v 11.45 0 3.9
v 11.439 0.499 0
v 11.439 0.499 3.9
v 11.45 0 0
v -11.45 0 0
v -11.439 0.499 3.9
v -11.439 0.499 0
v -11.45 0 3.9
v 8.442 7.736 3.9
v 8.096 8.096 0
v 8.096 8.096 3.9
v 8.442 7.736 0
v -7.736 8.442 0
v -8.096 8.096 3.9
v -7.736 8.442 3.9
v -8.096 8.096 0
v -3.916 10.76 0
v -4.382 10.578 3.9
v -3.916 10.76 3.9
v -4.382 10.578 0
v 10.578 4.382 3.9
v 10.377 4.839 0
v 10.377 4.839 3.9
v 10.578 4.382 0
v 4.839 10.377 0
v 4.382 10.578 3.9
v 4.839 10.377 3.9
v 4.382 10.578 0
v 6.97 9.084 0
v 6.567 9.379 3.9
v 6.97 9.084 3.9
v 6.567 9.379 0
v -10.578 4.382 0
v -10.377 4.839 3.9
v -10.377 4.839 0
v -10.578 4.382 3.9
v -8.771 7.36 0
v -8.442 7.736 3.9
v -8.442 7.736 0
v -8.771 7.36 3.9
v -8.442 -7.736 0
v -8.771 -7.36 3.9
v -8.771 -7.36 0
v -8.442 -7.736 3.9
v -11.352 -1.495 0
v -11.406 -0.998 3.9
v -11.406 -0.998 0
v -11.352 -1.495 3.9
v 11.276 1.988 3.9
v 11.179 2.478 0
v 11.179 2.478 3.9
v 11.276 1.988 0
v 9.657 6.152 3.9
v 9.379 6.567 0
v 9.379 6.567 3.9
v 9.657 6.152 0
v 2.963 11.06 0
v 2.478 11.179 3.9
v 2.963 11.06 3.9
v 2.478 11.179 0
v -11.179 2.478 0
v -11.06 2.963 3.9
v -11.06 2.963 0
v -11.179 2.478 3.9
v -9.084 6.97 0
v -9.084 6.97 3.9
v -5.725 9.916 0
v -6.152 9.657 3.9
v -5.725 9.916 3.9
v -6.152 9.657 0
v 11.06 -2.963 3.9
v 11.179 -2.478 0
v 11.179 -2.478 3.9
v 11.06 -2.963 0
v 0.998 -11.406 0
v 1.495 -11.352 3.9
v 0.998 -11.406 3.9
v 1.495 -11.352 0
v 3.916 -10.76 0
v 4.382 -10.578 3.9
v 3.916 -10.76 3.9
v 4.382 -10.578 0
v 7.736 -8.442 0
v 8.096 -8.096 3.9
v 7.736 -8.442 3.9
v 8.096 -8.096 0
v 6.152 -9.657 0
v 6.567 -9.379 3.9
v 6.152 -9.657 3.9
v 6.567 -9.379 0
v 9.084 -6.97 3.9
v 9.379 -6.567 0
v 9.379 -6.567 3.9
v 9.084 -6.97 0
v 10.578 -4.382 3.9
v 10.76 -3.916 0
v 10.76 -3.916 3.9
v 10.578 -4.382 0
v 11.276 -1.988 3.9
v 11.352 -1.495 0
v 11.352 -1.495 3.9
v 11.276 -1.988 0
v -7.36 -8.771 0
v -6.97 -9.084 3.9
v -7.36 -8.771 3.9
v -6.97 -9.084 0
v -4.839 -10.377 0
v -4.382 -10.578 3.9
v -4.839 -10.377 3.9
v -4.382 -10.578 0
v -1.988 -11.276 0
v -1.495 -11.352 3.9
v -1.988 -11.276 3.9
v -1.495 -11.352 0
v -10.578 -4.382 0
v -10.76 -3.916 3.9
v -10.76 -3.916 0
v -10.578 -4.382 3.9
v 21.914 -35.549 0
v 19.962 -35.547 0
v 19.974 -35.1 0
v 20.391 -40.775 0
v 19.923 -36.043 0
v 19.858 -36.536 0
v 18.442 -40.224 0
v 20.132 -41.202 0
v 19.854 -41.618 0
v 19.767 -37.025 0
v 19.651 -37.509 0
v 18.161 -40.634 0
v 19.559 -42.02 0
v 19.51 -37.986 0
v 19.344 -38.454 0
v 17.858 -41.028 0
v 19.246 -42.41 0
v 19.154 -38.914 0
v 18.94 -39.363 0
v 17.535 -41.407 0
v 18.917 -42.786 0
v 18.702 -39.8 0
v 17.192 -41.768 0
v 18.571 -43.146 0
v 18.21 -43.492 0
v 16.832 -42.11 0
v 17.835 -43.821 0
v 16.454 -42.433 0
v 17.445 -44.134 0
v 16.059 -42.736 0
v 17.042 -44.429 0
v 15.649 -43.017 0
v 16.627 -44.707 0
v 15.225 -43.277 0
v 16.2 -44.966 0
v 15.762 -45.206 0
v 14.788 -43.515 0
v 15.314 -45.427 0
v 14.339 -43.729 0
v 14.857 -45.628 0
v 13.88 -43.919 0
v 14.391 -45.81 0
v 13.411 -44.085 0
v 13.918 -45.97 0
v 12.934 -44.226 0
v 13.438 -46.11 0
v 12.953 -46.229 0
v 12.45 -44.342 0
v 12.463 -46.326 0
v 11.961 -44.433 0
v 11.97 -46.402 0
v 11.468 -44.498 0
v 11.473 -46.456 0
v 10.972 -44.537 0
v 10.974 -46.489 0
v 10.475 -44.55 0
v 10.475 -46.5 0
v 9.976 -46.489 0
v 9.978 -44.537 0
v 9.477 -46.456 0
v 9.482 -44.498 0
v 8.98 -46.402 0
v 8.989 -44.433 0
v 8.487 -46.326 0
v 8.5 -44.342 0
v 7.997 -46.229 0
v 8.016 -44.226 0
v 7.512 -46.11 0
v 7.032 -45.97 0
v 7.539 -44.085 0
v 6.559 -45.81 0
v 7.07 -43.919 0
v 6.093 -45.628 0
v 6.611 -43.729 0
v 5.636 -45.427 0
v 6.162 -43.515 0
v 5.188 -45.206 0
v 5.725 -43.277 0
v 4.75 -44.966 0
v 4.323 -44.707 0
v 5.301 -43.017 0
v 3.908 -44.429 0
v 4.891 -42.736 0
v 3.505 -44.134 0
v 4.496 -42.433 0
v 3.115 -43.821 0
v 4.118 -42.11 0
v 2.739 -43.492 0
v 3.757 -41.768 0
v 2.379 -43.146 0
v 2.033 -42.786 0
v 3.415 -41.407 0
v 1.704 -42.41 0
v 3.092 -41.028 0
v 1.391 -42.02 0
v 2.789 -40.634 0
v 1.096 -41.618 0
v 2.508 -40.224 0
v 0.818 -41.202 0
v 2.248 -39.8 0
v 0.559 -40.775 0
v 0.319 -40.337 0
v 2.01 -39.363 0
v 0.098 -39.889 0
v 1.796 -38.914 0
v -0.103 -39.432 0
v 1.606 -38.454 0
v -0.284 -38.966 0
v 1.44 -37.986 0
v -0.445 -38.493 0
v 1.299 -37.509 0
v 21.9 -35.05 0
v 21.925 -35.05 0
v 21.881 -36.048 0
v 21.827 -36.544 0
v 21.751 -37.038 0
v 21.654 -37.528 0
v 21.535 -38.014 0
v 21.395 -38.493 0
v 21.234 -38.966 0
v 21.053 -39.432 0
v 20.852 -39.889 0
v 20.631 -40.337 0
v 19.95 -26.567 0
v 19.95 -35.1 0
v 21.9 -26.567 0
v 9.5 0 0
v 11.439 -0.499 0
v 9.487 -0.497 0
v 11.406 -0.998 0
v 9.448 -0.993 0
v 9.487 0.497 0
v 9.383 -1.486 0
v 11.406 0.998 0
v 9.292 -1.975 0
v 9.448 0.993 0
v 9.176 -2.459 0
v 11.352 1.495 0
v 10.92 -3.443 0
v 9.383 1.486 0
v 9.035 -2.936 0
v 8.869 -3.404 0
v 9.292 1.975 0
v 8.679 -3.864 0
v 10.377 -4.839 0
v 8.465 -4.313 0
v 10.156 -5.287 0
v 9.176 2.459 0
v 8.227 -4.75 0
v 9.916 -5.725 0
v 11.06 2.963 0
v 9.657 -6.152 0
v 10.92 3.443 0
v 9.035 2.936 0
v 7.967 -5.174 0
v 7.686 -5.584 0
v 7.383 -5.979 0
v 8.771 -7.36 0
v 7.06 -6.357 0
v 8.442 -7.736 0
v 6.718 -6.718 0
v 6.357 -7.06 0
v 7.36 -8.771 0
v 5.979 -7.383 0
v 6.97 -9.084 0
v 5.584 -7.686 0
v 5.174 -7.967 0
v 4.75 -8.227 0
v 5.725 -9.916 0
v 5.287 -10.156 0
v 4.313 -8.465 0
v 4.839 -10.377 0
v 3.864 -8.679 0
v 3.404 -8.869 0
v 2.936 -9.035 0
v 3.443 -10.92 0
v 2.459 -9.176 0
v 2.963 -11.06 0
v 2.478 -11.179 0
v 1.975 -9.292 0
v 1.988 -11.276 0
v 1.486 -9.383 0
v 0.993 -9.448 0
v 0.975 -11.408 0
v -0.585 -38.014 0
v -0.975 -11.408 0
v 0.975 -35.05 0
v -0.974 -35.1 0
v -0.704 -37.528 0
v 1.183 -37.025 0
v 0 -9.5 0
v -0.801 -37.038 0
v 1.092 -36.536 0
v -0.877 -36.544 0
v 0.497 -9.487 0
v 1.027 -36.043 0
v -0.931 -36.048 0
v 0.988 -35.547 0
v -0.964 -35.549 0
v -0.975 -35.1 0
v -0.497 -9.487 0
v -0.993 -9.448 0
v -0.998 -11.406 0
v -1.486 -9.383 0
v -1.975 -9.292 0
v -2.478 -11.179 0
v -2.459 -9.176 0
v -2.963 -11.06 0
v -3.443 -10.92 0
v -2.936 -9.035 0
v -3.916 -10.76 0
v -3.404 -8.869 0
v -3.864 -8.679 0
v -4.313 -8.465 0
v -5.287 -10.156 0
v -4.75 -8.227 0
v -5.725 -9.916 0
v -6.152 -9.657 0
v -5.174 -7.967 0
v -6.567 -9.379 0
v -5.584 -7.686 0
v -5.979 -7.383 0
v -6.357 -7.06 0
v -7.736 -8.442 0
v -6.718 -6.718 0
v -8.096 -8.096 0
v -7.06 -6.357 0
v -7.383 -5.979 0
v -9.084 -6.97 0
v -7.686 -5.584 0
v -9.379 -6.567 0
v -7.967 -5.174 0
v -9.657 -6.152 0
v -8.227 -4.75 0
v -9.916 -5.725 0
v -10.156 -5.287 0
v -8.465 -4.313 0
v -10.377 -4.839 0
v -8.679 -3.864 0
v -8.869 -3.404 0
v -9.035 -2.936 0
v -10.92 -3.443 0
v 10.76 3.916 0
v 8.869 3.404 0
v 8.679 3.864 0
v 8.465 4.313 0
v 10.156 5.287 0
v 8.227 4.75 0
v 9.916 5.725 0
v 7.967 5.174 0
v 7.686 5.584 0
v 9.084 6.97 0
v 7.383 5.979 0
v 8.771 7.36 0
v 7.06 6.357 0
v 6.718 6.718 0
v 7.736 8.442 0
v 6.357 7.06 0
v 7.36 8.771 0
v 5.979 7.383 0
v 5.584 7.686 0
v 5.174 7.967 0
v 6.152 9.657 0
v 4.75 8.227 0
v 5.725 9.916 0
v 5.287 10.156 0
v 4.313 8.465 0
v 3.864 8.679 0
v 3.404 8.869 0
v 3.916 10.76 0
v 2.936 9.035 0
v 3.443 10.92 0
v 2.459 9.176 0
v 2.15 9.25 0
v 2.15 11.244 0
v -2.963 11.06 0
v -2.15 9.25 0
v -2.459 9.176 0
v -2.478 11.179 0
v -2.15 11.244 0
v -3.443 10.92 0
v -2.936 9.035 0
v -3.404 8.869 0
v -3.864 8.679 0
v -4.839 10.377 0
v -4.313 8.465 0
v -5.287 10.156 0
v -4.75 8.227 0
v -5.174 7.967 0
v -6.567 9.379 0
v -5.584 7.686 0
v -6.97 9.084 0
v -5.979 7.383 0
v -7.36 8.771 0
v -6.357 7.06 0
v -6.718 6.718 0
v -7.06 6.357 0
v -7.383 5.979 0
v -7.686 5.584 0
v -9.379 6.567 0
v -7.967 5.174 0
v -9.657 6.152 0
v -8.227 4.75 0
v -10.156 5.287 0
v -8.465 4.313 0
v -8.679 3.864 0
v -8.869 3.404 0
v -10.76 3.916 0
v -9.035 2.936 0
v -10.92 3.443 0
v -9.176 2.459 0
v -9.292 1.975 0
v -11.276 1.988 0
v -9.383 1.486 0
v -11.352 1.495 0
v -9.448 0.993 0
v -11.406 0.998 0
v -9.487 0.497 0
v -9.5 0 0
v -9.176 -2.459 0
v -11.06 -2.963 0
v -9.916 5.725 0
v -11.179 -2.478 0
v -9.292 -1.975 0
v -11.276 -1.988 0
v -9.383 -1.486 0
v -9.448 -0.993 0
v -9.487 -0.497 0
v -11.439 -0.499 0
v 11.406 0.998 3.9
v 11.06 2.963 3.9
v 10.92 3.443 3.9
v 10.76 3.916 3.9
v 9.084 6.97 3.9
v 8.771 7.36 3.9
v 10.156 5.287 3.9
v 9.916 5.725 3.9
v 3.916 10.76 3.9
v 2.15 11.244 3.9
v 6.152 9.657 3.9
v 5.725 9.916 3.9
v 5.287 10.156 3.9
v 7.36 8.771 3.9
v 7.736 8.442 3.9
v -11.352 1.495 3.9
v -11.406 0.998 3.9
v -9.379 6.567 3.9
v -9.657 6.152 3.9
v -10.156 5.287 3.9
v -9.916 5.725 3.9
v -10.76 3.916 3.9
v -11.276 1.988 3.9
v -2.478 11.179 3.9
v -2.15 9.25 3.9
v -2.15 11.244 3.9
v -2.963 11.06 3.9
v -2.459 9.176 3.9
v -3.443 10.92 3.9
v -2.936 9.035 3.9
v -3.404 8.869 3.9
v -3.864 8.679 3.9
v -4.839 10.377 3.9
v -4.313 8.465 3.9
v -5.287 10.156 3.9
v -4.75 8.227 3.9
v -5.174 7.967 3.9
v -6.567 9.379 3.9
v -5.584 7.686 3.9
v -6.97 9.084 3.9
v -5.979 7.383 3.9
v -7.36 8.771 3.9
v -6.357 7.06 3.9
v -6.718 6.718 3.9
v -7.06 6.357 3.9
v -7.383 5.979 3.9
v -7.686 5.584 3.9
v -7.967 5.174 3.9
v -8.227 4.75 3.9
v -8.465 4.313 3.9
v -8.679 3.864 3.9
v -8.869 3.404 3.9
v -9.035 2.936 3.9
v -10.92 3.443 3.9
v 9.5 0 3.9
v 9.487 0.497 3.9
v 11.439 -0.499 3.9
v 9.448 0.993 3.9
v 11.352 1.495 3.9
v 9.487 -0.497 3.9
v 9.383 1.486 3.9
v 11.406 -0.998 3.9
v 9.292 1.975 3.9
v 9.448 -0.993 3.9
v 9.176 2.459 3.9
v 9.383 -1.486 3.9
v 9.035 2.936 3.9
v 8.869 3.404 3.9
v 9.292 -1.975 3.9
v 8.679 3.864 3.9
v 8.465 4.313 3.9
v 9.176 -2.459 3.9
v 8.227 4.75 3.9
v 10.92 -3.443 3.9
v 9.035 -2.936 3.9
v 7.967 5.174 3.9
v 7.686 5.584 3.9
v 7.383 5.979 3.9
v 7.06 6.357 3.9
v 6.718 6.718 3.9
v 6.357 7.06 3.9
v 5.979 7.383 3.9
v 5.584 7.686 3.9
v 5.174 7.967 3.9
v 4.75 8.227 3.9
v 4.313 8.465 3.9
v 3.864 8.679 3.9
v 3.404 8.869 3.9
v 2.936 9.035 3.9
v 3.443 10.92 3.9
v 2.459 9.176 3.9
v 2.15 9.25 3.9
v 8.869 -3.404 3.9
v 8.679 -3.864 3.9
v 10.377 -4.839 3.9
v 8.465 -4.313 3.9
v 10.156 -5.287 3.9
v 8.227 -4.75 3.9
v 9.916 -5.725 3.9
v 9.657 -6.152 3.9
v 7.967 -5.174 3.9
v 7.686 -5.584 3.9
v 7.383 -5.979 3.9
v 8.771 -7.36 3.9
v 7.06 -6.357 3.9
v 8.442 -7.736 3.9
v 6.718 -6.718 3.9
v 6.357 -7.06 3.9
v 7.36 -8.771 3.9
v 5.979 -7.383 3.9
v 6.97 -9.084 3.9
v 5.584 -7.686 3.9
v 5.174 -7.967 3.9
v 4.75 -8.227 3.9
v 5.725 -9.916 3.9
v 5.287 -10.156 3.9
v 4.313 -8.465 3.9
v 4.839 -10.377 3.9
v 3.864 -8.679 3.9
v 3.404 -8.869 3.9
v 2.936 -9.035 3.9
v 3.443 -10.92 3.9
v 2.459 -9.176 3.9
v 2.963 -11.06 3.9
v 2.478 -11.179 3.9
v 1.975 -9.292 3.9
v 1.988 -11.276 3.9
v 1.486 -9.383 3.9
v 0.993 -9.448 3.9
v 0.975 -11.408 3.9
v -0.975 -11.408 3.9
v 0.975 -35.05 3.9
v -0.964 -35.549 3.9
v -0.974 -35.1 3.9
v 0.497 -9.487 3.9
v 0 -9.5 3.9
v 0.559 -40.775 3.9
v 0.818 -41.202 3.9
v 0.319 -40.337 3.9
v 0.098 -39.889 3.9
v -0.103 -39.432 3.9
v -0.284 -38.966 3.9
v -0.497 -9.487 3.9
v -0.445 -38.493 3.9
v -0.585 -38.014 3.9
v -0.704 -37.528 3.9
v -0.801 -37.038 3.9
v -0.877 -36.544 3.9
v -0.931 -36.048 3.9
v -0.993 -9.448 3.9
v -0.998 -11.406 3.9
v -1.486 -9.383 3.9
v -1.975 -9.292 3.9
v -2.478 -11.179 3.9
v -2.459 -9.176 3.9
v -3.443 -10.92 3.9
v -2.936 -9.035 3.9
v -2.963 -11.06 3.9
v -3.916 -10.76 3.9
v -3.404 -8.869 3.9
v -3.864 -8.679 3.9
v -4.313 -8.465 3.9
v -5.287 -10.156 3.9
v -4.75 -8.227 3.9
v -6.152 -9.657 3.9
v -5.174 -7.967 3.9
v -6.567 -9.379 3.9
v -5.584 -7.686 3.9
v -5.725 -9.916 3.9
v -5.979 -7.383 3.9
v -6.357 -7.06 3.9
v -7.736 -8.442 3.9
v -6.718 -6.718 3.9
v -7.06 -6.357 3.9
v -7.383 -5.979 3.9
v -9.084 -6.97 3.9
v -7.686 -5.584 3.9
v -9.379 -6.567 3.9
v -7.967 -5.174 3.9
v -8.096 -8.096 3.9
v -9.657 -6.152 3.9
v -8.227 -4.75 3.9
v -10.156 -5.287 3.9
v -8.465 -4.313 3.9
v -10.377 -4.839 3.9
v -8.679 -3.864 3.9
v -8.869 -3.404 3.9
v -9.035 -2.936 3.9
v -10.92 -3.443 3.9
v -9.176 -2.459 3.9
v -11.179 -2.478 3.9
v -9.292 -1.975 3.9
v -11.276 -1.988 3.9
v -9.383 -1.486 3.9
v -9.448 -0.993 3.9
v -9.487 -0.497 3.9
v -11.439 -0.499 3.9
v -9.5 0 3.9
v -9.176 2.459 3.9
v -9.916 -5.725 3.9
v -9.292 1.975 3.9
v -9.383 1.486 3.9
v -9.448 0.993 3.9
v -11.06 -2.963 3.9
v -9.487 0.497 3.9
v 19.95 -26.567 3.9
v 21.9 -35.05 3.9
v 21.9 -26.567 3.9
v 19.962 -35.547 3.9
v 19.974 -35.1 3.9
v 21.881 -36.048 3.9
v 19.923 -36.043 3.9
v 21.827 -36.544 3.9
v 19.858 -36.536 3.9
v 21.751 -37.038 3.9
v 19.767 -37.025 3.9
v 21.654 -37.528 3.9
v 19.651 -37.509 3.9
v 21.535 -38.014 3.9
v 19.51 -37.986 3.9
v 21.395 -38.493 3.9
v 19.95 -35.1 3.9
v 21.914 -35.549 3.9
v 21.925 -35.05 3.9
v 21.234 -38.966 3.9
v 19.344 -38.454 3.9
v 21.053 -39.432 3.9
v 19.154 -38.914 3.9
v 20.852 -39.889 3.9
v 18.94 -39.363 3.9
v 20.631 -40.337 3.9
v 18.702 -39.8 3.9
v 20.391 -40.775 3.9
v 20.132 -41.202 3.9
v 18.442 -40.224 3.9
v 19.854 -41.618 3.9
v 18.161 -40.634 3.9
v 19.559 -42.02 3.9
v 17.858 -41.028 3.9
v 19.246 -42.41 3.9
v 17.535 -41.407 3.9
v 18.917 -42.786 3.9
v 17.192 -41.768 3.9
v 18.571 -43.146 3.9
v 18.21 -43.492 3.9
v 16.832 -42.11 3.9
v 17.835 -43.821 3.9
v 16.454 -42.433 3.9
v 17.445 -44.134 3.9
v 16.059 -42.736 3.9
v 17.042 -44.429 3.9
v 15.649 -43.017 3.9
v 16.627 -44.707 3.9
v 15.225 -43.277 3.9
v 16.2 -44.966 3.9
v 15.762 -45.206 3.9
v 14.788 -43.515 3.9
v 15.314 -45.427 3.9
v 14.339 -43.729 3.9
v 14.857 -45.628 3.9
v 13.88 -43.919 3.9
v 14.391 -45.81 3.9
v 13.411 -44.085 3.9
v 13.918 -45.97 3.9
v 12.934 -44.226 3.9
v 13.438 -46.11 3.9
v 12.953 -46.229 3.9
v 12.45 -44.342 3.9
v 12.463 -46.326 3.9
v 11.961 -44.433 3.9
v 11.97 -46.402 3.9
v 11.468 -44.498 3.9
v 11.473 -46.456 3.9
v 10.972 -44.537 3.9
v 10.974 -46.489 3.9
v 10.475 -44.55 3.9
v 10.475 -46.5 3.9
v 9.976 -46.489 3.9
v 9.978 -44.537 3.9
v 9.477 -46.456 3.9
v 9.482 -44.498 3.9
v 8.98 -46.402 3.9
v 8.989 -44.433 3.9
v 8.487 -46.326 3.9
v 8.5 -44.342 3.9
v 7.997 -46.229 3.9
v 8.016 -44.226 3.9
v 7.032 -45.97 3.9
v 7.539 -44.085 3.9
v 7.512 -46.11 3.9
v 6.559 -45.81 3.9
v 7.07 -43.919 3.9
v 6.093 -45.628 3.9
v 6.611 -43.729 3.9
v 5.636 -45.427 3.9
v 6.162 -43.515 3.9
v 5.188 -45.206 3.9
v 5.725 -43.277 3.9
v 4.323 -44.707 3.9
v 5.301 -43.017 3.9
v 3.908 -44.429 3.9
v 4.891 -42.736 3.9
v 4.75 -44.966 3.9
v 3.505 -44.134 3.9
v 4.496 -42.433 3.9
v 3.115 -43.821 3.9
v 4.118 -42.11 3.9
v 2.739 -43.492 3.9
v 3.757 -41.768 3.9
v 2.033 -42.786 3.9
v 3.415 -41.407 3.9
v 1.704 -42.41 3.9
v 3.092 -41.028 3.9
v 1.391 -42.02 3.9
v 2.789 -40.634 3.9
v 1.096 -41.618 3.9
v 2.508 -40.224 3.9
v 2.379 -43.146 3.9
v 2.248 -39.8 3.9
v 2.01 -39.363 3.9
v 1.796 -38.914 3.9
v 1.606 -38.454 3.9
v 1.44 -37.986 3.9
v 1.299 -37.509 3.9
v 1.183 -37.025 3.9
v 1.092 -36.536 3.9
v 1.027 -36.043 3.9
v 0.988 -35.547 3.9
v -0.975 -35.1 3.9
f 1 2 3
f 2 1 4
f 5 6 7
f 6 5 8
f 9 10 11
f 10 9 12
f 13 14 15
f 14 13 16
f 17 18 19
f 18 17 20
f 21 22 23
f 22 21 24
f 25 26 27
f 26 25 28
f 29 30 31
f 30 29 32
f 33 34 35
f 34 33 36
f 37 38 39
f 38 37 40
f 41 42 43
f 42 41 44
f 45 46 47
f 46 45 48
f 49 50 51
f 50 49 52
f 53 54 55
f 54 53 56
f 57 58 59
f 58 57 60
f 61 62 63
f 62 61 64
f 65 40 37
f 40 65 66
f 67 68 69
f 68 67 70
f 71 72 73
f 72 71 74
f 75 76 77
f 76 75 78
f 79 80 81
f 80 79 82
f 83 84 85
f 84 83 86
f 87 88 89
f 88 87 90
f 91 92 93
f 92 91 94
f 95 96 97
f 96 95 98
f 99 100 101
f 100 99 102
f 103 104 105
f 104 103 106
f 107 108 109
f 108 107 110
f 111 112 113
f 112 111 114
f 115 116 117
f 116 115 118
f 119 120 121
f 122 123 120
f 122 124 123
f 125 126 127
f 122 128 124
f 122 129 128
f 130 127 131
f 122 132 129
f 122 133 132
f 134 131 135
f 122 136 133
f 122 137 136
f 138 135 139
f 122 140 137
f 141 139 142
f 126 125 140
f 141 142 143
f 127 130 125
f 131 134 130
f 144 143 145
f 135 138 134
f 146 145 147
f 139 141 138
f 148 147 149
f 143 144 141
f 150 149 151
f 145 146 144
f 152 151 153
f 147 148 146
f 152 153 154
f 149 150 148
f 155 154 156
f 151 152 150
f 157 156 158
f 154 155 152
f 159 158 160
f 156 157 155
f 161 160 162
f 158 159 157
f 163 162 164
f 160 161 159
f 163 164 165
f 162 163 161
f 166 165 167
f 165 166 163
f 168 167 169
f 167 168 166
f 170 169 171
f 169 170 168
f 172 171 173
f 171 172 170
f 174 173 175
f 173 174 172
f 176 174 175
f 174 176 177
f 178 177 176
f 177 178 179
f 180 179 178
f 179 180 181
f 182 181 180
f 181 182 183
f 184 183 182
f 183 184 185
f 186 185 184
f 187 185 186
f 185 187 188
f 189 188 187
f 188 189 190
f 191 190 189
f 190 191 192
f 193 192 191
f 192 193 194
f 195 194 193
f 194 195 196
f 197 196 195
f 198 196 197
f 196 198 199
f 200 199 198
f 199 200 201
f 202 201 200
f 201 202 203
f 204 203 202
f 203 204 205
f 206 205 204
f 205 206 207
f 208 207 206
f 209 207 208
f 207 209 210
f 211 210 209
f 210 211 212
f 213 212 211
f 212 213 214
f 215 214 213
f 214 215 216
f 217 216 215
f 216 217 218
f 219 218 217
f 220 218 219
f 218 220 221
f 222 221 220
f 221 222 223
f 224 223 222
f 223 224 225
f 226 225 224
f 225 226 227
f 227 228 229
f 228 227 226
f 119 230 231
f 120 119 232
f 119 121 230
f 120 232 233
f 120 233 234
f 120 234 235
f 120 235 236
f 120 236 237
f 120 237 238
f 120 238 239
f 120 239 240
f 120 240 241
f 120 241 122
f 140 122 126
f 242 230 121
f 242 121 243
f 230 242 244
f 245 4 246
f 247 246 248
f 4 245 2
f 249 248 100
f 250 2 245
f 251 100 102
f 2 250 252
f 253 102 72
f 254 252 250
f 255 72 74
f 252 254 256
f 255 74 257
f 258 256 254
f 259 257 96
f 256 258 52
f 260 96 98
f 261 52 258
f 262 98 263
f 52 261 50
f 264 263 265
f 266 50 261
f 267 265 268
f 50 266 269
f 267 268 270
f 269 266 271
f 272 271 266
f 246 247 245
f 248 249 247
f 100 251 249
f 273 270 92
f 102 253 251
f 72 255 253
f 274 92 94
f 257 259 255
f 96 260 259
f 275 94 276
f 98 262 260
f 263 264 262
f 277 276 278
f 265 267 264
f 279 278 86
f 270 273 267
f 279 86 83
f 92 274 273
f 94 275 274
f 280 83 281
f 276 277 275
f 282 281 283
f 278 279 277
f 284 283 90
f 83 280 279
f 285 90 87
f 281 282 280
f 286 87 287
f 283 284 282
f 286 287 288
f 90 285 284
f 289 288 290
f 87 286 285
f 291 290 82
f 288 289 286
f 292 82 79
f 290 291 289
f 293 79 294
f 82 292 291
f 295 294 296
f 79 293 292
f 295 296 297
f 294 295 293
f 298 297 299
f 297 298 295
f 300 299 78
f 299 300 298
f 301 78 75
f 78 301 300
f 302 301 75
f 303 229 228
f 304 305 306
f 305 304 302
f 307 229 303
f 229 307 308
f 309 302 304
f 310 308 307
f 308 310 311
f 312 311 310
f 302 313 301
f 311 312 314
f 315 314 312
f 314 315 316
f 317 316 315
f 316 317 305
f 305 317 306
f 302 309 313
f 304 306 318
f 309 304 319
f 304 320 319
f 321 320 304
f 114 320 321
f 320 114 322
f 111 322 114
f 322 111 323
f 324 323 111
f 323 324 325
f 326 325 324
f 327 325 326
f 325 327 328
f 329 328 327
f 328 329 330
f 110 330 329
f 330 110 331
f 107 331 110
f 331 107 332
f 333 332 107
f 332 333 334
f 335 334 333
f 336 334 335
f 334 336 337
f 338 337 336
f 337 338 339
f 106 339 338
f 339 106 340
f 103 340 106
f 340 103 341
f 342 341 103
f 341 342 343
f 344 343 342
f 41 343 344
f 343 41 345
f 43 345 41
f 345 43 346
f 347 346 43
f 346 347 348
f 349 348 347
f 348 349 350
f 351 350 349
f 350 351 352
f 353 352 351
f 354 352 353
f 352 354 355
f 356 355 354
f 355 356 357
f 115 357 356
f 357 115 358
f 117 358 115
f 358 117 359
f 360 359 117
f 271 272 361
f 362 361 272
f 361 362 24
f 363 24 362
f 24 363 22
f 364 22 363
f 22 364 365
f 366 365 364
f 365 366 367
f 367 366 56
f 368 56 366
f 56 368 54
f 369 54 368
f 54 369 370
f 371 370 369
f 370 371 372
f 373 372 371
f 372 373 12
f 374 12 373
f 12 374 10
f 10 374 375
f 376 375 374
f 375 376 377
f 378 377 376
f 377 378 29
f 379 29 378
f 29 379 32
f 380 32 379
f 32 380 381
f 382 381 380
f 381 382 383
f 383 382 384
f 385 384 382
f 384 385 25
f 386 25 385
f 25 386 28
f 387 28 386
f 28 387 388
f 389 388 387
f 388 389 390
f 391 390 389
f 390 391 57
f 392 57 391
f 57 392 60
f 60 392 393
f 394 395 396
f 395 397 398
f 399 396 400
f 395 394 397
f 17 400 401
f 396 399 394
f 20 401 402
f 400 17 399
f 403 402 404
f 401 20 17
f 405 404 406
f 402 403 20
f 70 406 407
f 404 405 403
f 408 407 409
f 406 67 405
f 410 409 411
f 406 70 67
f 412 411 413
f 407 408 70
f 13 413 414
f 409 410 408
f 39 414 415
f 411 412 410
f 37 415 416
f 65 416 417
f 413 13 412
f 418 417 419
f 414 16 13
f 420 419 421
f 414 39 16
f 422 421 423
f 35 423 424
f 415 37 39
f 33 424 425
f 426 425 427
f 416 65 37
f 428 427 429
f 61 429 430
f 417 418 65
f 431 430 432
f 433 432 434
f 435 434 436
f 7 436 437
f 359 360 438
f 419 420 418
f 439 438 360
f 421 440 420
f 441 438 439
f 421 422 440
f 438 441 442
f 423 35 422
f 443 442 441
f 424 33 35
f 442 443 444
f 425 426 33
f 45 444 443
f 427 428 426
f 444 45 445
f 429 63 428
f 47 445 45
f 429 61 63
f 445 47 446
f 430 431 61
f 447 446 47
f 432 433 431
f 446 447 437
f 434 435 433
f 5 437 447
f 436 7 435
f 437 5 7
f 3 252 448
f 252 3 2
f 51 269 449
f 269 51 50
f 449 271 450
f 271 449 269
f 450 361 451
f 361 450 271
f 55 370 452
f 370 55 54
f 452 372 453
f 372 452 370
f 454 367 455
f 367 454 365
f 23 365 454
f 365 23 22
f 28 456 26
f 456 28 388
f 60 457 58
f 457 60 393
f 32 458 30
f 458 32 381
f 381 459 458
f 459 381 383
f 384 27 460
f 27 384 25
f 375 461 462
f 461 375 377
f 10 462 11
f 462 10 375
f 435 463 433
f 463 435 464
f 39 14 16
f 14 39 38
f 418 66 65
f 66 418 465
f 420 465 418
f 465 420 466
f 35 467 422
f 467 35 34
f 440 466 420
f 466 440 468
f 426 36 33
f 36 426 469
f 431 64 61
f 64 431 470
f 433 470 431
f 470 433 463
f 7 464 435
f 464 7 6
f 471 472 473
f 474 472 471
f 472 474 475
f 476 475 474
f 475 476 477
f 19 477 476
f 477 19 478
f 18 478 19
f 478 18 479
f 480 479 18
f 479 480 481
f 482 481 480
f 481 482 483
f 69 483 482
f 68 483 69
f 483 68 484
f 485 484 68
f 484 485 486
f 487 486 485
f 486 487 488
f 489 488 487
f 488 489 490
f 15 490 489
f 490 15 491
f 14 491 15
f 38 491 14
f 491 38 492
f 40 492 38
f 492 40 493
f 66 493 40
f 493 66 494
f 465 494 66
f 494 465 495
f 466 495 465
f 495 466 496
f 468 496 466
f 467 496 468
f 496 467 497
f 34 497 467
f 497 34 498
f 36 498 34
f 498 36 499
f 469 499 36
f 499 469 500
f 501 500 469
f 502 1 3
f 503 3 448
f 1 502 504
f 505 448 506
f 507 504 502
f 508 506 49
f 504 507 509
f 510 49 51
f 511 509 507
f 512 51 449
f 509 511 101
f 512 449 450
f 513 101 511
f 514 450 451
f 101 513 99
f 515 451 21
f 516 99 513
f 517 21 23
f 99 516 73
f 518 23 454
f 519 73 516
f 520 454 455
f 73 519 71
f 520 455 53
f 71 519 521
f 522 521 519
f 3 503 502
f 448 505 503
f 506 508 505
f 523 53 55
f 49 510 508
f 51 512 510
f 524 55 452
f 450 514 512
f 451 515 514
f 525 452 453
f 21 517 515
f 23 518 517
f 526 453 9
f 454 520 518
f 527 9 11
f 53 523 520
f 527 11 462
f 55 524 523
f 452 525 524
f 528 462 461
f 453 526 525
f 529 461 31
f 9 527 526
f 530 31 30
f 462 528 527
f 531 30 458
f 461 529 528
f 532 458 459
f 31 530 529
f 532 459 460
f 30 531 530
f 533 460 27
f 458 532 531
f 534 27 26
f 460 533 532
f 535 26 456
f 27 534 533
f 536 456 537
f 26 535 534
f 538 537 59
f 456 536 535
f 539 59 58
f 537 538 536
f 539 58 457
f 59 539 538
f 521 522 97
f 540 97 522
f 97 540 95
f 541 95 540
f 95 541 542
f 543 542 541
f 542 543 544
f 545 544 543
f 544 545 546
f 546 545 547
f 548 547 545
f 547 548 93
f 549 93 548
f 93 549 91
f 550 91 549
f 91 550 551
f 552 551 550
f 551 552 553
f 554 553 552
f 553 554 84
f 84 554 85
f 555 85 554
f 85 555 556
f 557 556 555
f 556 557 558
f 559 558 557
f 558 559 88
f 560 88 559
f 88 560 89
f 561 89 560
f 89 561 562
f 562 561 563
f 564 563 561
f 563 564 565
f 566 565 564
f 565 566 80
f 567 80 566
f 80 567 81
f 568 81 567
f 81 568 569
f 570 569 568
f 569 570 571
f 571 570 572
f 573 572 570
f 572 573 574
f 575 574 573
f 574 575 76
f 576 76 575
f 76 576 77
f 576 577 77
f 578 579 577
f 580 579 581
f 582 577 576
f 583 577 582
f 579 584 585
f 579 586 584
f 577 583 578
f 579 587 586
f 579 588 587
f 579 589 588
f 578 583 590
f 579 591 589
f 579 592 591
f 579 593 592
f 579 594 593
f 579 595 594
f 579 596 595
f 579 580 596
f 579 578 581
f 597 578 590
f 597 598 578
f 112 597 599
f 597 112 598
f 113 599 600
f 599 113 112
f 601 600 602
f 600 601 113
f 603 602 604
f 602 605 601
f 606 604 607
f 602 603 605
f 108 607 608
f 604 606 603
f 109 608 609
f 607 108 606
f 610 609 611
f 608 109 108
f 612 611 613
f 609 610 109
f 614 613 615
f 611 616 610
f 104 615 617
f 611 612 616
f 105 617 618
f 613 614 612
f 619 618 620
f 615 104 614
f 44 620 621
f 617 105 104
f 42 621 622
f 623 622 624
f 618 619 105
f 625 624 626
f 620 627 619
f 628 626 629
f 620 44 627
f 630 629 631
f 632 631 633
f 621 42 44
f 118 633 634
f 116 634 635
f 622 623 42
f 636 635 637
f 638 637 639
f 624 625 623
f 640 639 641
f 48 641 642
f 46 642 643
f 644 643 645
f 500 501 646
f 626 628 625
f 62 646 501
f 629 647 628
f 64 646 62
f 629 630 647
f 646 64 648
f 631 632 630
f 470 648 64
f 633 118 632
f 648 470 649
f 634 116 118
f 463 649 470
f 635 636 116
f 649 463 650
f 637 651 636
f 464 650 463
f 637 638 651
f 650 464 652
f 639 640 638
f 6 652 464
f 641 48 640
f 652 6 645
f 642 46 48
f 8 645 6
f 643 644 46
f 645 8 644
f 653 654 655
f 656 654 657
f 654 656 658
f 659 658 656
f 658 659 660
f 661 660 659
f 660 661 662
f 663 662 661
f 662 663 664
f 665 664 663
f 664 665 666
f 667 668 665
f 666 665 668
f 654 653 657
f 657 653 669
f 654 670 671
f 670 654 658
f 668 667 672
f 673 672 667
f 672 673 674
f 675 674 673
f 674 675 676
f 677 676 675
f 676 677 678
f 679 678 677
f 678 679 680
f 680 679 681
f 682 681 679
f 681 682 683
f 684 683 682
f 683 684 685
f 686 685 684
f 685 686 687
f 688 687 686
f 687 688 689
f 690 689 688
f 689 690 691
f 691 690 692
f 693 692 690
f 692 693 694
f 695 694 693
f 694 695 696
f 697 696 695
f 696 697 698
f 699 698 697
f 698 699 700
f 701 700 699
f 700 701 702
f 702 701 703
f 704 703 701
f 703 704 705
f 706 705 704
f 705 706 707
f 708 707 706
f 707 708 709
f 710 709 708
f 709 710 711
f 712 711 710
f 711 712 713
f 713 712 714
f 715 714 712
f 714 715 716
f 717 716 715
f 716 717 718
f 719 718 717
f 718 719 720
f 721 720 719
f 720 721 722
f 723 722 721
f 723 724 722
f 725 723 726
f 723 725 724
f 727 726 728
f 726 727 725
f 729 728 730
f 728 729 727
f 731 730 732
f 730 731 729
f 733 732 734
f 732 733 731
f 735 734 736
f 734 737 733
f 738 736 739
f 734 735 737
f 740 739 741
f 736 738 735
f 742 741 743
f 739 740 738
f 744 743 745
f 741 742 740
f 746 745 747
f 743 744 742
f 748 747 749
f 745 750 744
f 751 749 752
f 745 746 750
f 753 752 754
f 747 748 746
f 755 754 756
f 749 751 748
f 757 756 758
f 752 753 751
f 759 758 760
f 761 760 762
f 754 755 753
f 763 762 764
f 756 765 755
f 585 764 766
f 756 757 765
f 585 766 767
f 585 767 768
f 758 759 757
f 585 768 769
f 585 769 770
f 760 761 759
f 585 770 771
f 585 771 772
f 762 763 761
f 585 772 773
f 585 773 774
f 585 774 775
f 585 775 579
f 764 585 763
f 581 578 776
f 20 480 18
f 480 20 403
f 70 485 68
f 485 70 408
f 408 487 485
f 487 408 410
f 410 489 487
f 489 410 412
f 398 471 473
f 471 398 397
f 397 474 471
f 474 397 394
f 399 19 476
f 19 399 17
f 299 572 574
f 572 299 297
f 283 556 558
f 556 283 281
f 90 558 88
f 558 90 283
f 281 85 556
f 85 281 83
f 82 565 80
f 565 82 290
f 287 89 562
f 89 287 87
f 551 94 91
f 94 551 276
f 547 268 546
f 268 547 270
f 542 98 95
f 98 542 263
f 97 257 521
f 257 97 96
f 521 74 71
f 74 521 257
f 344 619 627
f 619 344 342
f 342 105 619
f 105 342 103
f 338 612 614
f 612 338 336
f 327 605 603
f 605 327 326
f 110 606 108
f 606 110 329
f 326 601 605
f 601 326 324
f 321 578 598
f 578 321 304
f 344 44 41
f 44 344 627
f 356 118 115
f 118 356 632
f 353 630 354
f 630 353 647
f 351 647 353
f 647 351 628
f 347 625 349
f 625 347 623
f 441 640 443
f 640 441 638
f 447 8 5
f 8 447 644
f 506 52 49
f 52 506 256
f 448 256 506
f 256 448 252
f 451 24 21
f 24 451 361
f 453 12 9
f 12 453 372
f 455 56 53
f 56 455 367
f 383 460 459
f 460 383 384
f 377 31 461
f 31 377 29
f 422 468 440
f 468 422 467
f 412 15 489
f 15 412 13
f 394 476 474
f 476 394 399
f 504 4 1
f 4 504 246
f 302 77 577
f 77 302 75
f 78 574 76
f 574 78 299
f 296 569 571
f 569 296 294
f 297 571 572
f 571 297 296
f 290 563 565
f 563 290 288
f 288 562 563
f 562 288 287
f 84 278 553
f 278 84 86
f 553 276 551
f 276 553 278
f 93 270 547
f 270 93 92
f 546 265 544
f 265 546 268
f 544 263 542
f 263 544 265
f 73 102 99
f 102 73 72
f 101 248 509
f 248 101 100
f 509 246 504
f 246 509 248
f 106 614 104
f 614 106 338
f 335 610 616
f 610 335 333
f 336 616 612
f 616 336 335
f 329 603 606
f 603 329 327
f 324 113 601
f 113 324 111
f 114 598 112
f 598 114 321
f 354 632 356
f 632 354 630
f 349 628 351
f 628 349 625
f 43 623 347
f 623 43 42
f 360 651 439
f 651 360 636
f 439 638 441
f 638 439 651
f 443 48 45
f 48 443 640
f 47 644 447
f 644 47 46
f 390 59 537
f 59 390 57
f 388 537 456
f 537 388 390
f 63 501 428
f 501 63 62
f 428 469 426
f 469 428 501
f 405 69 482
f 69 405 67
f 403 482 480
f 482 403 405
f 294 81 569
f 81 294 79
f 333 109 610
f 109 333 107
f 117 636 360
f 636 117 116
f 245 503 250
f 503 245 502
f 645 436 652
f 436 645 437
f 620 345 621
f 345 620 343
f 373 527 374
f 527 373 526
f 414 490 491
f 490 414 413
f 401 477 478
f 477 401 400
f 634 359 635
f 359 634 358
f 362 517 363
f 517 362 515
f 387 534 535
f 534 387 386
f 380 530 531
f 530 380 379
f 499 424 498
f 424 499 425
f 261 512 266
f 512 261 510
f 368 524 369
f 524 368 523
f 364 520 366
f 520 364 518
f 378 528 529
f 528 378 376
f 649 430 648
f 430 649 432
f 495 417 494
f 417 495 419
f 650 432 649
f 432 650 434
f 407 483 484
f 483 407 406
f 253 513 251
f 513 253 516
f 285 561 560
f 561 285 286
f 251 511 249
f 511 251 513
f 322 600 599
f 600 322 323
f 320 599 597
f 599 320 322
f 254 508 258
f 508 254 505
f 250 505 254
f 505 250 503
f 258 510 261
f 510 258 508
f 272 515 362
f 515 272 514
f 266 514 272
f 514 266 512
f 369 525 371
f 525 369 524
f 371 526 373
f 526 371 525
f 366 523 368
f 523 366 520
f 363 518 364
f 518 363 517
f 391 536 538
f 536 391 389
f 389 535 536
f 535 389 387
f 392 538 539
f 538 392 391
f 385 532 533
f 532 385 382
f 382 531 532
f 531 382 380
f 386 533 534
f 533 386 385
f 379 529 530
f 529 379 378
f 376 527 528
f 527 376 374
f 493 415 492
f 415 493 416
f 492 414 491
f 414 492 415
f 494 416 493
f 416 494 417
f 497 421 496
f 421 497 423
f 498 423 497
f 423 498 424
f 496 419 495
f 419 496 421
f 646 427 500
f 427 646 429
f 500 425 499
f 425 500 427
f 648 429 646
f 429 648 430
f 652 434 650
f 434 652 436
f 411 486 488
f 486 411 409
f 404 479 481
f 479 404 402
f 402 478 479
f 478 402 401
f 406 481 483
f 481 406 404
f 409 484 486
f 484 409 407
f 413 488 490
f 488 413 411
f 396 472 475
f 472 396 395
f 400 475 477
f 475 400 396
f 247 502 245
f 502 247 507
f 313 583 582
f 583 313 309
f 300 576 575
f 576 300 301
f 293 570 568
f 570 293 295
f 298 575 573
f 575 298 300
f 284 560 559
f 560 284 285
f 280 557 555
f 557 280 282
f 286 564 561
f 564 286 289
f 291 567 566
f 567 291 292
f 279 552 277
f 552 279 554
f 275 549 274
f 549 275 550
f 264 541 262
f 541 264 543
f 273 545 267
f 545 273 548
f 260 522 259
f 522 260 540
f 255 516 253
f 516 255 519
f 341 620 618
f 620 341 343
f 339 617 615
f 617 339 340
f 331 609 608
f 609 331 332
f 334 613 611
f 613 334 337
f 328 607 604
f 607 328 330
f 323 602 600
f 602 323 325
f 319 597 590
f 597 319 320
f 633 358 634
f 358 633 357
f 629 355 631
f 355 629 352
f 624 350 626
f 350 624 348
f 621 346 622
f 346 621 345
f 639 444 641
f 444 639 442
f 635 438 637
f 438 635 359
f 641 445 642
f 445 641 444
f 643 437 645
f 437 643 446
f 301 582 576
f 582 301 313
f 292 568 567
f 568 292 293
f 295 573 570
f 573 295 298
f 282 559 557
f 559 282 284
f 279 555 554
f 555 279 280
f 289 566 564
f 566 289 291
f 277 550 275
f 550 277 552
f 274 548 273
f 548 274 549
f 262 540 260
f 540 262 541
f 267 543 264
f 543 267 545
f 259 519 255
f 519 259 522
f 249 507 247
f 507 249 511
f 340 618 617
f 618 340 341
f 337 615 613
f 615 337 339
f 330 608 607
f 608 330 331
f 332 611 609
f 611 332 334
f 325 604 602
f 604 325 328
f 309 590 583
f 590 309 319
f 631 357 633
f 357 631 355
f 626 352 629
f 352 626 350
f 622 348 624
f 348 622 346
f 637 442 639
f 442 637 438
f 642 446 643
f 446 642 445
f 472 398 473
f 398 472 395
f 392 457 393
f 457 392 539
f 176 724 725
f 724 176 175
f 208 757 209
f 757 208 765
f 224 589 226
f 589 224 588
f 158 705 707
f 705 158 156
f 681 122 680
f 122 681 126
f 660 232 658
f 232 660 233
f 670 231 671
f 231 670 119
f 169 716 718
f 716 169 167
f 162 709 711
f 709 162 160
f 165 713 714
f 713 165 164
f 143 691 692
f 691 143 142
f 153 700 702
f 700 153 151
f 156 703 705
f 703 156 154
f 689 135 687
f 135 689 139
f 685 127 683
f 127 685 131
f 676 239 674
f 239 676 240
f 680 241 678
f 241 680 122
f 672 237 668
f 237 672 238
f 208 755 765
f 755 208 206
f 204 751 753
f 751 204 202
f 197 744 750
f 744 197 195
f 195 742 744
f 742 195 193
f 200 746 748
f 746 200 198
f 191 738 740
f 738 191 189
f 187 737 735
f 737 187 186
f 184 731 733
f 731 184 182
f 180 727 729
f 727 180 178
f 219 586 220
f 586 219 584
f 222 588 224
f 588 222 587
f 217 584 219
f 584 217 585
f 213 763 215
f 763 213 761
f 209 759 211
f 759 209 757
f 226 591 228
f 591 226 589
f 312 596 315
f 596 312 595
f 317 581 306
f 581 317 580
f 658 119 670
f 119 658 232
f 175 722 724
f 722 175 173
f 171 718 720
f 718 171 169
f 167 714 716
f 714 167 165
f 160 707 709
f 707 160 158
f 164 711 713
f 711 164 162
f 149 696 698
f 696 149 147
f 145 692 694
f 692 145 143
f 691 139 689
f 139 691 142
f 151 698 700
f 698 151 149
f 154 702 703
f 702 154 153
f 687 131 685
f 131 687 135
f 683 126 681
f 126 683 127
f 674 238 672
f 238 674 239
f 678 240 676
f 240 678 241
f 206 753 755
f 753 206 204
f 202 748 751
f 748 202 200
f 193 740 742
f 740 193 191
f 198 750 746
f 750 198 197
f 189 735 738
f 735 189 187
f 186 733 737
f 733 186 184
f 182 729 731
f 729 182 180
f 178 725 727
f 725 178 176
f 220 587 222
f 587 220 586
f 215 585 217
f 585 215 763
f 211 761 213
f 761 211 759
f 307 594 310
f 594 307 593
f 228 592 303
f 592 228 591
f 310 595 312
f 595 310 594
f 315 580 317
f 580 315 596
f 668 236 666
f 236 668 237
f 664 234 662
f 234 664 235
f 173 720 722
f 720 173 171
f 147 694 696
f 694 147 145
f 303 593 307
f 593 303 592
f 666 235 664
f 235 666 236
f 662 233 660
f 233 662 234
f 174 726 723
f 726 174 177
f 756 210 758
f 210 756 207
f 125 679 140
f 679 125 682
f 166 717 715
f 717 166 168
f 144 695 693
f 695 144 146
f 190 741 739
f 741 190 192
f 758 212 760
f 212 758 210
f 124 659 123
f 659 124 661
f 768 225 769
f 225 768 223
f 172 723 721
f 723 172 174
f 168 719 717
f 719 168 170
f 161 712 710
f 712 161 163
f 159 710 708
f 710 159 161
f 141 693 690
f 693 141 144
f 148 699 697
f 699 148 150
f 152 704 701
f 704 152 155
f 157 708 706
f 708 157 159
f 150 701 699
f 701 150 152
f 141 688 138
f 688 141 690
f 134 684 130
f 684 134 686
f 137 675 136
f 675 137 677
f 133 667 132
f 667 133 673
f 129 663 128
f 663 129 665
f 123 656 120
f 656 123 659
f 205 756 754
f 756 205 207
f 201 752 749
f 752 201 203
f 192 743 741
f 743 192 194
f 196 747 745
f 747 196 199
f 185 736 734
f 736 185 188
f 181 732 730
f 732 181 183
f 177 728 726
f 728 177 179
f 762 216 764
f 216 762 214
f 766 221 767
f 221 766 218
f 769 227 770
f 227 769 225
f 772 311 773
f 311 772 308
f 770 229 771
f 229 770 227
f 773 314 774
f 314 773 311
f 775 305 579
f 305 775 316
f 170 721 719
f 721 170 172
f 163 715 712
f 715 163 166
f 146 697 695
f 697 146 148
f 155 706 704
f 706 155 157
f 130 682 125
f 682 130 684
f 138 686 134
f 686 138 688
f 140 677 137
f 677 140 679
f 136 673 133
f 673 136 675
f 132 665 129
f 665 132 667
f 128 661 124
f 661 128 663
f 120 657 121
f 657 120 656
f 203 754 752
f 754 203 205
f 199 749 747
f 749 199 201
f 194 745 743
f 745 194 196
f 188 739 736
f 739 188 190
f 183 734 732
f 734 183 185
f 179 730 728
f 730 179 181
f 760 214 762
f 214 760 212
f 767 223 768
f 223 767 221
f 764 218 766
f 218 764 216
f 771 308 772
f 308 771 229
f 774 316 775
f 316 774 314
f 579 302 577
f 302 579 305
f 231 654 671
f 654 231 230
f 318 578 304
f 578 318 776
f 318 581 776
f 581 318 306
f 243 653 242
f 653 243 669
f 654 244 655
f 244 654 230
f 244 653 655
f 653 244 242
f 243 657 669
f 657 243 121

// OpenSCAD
thickness = 3.9;

outerCircleDiameter = 22.9;
innerCircleDiameter = outerCircleDiameter - thickness;
circleGapWidth = 4.3;
spacerLength = 12.8 * 2;

$fs = 0.5;
$fa = 0.1;

module topCircleClosed() {
    difference() {
        cylinder(h = thickness, d = outerCircleDiameter);
        
        translate([0, 0, -thickness / 2])
        cylinder(h = thickness * 2, d = innerCircleDiameter);
    }
}

module topCircle() {
    difference() {
        topCircleClosed();
    
        translate([0, outerCircleDiameter / 2 - thickness / 2, thickness / 2])
        cube([circleGapWidth, circleGapWidth, thickness * 2], center = true);
    }
}

module hookSpacerStraight() {
    translate([-thickness / 4, -outerCircleDiameter / 2 + thickness / 2 - spacerLength, 0])
    cube([thickness / 2, spacerLength, thickness]);
}

module hookCircle() {
    difference() {
        translate([outerCircleDiameter / 2 - thickness / 4, -spacerLength - (outerCircleDiameter / 2) + 2, 0])
        cylinder(h = thickness, d = outerCircleDiameter);

        translate([outerCircleDiameter / 2 - thickness / 4, -spacerLength - (outerCircleDiameter / 2) + 2, - thickness / 2])
        cylinder(h = thickness * 2, d = innerCircleDiameter);
    }
}

module hookCutOut() {
    translate([thickness / 4, -spacerLength - (outerCircleDiameter / 2) + 2, - thickness / 2])
    cube([outerCircleDiameter, outerCircleDiameter / 2, thickness * 2]);
}

module hook() {
    difference() {
        hookCircle();
        hookCutOut();
    }
}

module hookFinisher() {
    translate([outerCircleDiameter - (thickness / 2) - 1, -outerCircleDiameter / 2 + thickness / 2 - spacerLength, 0])
    cube([thickness / 2, spacerLength / 3, thickness]);
}

module duktigHook() {
    topCircle();
    hookSpacerStraight();
    hook();
    hookFinisher();
}

duktigHook();
